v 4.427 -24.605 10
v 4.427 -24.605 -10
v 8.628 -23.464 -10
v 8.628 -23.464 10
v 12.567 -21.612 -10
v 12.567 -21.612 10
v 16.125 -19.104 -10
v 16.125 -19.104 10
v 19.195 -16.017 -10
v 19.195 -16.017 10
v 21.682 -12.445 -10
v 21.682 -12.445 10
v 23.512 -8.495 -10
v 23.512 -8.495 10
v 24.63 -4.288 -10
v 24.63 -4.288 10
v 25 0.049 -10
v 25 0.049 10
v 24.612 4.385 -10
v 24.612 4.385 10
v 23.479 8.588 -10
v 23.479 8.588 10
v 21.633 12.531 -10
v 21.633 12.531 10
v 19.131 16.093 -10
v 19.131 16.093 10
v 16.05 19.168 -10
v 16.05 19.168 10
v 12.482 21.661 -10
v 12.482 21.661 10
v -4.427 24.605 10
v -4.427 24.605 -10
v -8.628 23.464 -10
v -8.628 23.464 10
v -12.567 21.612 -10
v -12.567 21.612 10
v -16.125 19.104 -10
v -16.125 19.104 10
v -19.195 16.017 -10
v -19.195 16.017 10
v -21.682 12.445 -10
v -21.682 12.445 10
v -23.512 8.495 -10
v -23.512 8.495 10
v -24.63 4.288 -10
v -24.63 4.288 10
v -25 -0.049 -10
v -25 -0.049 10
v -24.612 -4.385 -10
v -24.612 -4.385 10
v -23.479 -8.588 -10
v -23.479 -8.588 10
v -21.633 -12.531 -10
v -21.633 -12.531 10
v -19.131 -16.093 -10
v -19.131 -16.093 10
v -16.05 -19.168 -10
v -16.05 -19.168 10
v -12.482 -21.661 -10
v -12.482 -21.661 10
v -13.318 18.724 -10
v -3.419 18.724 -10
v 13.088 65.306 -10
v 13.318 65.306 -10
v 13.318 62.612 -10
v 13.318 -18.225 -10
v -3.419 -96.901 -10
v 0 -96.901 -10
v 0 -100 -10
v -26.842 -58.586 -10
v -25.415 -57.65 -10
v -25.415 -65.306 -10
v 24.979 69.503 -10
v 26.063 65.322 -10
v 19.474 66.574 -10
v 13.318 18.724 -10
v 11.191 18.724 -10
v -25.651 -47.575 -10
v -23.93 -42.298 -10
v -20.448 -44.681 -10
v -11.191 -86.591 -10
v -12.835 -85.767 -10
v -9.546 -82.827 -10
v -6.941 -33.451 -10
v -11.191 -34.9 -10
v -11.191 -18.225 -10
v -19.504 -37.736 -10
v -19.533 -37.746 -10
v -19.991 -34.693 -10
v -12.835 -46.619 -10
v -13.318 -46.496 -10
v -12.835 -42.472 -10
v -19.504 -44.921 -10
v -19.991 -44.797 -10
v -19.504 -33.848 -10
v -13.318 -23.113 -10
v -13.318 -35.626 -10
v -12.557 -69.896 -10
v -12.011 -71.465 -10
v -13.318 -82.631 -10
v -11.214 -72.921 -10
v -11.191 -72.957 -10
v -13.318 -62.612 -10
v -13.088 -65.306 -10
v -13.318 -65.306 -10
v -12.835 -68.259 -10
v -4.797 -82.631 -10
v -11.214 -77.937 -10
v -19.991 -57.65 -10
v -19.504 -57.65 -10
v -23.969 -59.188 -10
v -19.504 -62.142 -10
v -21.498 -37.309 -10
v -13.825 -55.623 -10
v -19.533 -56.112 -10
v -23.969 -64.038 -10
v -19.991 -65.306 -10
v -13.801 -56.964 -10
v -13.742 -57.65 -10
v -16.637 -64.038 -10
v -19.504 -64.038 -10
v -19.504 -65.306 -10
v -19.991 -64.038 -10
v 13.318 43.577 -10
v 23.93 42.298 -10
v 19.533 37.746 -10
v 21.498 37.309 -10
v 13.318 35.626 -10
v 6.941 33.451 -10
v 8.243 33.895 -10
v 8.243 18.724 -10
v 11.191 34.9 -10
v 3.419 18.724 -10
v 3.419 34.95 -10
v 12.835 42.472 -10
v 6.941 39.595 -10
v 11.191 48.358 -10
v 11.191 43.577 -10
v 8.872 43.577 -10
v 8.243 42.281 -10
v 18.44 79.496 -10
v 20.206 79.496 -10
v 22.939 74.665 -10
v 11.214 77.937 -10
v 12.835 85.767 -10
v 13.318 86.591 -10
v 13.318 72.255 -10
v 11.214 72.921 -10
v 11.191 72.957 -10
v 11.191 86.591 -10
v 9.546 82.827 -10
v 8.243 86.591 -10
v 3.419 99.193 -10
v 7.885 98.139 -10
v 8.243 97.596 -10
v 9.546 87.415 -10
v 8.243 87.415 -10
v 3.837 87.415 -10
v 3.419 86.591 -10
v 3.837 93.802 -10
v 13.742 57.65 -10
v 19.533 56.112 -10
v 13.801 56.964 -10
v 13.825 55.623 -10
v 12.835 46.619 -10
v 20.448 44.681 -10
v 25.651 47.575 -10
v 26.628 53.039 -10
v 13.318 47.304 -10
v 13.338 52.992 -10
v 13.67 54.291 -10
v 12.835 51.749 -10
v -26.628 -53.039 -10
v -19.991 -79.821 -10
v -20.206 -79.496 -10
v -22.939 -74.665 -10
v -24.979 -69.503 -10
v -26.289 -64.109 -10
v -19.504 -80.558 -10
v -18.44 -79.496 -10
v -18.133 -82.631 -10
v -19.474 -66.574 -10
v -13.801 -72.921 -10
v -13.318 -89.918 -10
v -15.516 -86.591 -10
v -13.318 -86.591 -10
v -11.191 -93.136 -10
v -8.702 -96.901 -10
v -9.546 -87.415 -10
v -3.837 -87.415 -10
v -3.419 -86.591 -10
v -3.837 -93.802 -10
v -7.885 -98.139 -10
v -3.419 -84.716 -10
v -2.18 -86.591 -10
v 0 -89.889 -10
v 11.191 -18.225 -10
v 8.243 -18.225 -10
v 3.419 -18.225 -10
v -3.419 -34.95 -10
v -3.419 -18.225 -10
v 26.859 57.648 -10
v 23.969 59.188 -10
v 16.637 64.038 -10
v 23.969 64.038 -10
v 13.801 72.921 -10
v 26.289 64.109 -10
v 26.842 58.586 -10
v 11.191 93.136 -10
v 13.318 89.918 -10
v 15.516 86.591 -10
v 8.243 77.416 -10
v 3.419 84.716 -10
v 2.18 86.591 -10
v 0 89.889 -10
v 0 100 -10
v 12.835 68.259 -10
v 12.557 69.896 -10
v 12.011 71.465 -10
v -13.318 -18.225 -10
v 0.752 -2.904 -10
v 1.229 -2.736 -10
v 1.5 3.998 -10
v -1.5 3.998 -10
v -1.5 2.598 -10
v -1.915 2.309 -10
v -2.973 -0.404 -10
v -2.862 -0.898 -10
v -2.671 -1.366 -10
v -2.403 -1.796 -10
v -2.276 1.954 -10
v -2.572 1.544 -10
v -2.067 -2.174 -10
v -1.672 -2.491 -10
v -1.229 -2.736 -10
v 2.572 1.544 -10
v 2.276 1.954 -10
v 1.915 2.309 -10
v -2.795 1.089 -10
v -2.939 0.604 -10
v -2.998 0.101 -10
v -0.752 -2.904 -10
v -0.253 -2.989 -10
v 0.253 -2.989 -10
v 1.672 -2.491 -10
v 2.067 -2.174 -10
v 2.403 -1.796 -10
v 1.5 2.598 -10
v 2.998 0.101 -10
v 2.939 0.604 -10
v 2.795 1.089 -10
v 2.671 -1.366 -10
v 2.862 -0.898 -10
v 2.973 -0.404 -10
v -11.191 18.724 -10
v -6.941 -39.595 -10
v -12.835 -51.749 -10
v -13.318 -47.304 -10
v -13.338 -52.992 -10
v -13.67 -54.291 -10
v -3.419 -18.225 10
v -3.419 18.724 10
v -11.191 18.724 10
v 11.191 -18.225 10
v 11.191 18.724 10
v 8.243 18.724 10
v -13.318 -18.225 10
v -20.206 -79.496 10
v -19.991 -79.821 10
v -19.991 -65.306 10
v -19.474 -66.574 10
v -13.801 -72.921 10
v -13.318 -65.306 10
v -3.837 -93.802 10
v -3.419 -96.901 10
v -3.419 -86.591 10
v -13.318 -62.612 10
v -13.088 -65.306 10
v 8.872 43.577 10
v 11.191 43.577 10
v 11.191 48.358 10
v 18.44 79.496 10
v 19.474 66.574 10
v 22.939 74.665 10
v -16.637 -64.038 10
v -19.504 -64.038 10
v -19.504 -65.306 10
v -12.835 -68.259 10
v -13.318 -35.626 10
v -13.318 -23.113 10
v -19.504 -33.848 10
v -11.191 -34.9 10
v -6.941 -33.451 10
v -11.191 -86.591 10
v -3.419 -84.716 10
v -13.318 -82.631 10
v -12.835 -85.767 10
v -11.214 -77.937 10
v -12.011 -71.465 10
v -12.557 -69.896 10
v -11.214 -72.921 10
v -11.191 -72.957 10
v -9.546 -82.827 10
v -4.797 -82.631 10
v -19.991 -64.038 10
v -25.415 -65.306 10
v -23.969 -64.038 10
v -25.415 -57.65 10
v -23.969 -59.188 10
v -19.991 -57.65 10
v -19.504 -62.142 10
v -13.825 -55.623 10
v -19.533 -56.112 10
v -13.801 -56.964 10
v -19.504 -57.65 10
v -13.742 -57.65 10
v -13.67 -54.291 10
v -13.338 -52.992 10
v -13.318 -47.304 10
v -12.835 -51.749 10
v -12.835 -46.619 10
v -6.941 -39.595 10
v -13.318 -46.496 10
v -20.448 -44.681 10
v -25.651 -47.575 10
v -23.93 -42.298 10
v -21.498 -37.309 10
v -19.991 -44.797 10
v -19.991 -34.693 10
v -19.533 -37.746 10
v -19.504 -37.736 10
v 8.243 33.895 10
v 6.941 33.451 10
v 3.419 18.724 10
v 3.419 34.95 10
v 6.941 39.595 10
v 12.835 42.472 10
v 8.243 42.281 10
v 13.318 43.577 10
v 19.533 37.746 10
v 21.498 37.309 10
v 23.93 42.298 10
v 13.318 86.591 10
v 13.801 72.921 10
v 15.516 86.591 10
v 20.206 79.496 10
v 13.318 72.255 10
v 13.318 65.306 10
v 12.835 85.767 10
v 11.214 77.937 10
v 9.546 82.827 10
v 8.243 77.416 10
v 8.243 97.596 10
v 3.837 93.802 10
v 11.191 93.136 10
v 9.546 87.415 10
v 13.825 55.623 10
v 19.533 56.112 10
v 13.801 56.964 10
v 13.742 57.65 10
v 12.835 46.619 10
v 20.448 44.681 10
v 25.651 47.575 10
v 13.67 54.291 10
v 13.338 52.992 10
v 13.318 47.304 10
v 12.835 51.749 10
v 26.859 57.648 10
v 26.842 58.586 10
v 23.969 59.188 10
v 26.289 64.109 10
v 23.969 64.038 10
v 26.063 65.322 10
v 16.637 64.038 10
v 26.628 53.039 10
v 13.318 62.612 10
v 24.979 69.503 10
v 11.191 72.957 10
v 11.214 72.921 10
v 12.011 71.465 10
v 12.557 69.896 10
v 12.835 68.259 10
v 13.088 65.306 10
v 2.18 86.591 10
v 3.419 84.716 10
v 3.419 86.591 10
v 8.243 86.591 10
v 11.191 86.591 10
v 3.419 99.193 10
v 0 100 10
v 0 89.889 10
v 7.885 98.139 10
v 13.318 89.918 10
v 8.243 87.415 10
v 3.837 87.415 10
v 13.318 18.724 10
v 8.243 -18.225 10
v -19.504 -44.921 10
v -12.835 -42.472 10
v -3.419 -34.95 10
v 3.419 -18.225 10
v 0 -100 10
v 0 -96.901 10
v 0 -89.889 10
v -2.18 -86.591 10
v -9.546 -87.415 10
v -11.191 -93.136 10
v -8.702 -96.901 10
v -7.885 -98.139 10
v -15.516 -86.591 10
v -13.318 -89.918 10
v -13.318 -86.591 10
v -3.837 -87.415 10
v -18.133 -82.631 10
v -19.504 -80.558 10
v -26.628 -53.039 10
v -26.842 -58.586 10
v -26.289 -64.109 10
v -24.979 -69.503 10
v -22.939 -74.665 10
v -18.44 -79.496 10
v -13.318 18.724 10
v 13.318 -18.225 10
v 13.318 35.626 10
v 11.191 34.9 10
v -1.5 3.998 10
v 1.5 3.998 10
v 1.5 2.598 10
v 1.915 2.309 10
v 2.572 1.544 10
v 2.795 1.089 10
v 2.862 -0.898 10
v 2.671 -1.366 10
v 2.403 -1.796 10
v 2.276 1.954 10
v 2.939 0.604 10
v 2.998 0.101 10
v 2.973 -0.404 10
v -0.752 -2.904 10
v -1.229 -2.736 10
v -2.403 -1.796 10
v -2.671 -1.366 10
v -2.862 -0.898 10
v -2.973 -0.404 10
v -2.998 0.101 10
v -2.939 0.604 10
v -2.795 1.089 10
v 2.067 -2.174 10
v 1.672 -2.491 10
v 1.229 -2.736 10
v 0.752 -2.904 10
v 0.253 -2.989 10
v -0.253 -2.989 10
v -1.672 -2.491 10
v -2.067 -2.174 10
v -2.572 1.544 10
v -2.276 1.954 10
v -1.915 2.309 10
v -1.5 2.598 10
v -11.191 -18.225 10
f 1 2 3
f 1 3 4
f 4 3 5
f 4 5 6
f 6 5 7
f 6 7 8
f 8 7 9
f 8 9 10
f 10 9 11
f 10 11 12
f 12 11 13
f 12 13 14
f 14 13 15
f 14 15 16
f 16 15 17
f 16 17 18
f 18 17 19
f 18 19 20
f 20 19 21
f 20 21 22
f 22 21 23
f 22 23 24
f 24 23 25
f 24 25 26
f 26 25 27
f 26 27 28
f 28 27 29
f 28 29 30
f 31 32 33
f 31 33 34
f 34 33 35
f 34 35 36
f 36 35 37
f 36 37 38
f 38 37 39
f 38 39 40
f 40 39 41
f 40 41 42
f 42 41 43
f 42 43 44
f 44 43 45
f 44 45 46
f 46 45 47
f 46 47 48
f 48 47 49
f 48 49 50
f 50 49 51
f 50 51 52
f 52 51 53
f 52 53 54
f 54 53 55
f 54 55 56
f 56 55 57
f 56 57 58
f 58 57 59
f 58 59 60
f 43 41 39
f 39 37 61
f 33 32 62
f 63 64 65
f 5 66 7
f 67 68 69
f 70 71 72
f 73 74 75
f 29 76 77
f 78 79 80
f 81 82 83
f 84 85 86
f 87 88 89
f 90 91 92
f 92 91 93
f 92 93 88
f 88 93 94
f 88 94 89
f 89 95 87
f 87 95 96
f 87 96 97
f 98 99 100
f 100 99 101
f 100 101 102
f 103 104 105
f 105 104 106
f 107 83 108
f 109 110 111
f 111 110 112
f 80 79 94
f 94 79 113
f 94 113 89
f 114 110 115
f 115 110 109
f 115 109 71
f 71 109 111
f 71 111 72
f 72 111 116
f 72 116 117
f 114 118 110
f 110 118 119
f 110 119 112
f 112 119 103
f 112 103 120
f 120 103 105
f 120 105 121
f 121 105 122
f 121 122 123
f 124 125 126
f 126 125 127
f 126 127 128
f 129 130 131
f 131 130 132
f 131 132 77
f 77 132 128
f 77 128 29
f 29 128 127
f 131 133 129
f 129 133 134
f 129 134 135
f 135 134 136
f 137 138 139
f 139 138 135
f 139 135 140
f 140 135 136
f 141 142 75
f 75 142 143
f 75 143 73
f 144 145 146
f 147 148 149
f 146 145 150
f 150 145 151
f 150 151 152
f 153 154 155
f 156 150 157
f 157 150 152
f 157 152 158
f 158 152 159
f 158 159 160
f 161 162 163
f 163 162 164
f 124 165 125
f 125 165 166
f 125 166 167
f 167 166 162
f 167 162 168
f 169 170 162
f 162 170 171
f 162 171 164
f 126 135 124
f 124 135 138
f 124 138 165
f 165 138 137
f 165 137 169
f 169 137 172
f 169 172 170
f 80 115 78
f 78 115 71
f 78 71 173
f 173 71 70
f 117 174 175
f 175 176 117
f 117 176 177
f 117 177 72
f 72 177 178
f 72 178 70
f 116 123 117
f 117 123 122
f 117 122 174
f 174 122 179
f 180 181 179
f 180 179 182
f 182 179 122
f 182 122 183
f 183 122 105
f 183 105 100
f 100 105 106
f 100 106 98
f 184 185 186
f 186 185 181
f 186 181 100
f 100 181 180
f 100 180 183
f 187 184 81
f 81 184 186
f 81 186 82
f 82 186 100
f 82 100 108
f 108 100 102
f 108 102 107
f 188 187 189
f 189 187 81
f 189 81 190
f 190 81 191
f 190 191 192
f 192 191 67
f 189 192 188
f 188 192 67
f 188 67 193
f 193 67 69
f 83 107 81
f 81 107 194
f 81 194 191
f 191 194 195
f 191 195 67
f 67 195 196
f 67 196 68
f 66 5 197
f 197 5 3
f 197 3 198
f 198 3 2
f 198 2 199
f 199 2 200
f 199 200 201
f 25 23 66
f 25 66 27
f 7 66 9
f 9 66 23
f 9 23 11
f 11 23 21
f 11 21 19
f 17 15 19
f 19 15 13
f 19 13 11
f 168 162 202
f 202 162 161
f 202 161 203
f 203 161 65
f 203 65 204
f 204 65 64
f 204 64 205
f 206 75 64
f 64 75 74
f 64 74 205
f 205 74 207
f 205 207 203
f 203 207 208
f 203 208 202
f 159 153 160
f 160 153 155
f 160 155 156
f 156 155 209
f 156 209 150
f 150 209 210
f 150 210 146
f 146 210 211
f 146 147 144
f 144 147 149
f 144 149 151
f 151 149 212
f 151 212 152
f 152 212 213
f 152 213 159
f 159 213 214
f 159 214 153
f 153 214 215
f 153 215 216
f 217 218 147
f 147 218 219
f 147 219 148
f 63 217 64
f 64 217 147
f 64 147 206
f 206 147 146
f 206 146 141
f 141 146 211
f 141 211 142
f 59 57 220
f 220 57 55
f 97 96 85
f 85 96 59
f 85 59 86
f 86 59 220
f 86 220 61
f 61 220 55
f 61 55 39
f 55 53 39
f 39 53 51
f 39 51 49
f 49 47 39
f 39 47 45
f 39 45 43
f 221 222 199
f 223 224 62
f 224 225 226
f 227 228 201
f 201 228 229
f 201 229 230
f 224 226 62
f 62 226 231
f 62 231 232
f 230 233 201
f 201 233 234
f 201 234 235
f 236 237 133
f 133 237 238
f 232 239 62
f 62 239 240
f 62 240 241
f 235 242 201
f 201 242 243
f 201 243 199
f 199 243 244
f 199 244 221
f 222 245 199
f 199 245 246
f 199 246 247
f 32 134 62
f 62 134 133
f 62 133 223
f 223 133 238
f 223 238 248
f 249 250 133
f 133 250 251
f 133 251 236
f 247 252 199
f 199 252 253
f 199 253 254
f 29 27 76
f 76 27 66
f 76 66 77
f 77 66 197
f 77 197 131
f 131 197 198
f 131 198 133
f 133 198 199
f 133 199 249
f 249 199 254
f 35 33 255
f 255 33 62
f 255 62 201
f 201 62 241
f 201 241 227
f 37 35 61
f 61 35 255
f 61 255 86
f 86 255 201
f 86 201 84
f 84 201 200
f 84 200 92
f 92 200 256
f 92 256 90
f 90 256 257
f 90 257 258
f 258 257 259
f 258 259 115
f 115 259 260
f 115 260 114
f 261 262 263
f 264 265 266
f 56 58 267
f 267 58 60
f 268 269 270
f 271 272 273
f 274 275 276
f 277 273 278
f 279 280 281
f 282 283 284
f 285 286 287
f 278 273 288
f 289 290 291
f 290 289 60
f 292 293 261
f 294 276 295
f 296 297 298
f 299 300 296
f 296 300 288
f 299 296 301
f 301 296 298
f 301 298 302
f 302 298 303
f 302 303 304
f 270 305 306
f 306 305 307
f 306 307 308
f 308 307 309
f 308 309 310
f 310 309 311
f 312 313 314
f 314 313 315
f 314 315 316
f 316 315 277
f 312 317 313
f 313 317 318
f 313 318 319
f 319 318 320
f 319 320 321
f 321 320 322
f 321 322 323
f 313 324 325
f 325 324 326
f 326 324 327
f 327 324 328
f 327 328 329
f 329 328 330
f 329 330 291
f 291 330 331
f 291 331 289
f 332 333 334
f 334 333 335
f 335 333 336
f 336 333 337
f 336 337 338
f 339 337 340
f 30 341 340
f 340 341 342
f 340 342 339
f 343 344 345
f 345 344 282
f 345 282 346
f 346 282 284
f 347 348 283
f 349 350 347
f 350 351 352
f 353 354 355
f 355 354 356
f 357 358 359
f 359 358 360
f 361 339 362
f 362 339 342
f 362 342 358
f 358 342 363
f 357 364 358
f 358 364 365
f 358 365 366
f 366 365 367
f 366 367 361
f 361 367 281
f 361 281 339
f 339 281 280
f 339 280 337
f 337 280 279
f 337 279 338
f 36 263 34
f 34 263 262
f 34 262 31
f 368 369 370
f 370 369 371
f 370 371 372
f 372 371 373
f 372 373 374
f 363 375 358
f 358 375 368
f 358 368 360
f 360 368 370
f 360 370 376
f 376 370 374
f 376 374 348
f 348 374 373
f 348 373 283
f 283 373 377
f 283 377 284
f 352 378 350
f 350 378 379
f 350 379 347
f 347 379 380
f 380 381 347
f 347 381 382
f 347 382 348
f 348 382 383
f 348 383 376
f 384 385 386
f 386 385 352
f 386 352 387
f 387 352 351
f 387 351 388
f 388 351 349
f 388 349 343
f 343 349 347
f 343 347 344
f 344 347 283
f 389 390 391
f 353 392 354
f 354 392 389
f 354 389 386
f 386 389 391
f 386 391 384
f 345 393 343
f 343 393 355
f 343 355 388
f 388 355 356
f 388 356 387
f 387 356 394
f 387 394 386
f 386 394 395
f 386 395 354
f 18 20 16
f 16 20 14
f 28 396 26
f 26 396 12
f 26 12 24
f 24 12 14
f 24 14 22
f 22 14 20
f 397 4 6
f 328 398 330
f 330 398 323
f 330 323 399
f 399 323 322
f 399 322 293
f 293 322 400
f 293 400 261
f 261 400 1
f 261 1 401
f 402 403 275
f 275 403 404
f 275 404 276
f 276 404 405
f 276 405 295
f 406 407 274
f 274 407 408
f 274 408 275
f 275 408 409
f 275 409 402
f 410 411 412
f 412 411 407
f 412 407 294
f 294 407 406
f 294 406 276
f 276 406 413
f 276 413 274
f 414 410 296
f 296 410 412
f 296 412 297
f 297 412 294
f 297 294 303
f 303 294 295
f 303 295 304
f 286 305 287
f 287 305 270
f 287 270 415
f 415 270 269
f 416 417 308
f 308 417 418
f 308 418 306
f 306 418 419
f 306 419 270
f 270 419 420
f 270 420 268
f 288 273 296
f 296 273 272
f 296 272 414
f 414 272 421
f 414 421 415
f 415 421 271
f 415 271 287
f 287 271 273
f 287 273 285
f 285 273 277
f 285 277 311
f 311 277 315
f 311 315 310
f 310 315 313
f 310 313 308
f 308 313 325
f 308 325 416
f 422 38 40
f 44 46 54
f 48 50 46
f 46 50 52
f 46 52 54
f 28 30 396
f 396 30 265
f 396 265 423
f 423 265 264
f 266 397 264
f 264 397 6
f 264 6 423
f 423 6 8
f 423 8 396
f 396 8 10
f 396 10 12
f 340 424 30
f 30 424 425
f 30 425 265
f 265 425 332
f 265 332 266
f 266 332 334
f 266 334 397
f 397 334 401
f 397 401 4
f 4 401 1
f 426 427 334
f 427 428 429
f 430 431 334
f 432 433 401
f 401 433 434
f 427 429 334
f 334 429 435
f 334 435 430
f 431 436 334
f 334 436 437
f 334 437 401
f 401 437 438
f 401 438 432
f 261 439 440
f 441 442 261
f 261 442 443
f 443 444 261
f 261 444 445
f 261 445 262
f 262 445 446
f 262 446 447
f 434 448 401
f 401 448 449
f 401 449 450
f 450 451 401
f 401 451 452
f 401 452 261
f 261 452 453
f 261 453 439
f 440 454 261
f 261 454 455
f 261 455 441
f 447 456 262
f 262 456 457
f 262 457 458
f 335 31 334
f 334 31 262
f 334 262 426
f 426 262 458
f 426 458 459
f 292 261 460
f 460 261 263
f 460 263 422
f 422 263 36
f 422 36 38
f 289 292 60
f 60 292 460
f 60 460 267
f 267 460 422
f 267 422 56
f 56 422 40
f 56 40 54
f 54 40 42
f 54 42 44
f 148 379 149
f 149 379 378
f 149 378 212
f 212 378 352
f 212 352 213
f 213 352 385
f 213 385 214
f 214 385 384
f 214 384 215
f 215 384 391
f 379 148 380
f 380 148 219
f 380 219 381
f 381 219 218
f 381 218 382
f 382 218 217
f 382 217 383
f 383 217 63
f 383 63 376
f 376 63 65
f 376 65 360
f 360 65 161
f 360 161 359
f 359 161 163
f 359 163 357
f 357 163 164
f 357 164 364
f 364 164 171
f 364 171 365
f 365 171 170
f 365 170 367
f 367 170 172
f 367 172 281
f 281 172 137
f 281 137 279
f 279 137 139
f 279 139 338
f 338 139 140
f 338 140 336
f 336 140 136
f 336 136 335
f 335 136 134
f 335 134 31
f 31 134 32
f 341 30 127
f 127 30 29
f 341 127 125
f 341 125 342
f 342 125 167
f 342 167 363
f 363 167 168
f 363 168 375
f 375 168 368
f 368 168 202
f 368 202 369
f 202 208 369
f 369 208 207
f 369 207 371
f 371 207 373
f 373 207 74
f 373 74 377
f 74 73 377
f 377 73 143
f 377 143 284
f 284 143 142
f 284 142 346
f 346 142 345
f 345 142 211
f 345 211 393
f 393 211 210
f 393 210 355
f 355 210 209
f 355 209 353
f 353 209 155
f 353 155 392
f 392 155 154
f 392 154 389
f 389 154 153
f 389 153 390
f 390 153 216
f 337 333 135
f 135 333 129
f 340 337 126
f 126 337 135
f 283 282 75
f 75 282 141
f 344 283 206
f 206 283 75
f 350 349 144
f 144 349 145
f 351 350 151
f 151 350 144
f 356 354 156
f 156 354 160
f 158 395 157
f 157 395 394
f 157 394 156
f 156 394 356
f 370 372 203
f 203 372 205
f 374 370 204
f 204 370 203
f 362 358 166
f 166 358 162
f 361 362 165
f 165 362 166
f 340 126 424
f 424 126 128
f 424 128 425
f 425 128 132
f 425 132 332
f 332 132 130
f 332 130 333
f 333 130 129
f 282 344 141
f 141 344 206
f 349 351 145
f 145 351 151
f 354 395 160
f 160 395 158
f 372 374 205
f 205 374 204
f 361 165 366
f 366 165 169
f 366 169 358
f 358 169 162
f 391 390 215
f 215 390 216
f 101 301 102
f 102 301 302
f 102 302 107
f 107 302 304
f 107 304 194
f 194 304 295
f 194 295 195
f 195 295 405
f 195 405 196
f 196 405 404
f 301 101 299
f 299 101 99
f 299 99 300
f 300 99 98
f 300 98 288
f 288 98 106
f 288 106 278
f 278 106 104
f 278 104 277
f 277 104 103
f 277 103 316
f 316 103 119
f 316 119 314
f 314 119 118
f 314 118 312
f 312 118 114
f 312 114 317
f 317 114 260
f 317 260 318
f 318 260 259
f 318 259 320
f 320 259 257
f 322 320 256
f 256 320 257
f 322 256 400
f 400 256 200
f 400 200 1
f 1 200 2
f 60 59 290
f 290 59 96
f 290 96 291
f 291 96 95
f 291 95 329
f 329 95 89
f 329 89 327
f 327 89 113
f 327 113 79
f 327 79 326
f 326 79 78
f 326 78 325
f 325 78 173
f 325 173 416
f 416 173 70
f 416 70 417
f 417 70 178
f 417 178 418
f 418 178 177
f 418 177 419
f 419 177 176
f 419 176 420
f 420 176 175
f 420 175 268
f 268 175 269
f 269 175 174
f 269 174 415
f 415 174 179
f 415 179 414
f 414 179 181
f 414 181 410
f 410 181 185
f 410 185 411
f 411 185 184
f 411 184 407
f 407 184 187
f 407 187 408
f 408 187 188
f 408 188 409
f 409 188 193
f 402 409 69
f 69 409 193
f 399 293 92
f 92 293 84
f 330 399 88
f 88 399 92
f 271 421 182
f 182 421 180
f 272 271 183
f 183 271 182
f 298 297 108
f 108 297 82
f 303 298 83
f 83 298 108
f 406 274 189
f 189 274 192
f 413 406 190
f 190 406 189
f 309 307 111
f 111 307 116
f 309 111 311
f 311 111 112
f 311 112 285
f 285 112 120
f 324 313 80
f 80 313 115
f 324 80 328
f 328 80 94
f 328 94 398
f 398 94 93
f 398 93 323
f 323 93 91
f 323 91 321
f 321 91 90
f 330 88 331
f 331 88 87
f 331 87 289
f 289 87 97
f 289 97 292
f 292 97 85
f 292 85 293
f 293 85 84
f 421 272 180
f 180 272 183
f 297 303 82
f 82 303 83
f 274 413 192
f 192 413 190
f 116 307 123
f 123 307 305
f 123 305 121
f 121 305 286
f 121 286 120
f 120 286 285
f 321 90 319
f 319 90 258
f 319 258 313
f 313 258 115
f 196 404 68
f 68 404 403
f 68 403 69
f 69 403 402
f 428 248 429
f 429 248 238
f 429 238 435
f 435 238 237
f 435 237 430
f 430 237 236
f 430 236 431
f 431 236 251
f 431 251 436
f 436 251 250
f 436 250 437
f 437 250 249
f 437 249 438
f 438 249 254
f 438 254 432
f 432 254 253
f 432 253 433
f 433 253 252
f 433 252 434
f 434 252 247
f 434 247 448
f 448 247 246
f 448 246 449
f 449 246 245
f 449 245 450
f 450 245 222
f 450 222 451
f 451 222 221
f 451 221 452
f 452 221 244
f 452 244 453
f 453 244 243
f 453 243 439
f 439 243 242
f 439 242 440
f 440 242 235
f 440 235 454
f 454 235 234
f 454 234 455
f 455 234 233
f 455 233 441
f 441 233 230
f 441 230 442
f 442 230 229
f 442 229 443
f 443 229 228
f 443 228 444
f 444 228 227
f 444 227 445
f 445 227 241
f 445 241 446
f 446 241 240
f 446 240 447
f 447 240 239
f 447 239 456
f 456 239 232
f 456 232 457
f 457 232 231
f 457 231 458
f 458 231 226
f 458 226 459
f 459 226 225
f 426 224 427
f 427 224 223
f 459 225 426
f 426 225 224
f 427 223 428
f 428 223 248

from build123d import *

# Parameters (mm, degrees)
BOSS_EXTRUDE2_DEPTH = 10
BOSS_EXTRUDE3_DEPTH = 10
SKETCH4_R           = 3
CUT_EXTRUDE2_DEPTH  = 97.50000000000003
SKETCH5_W           = 2.9999999999999996
SKETCH5_H           = 5.436144239166649
CUT_EXTRUDE3_DEPTH  = 97.50000000000003


with BuildPart() as part:
    # Sketch1 → Boss-Extrude2 (new, symmetric)
    with BuildSketch(Plane.XY):
        with BuildLine():
            ThreePointArc((25, 0), (21.645300725418316, 12.509234848950804), (12.48152347950358, 21.661292012033837))
            ThreePointArc((12.48152347950358, 21.661292012033837), (4.28784793672588, 24.62954242513481), (-4.426865135345868, 24.604935786818448))
            ThreePointArc((-4.426865135345868, 24.604935786818448), (-24.629542425134808, 4.287847936725893), (-12.481523479503583, -21.661292012033833))
            ThreePointArc((-12.481523479503583, -21.661292012033833), (-4.287847936725894, -24.629542425134808), (4.426865135345872, -24.604935786818448))
            ThreePointArc((4.426865135345872, -24.604935786818448), (19.17904622737594, -16.036339538940197), (25, -6.12e-15))
        make_face()
    extrude(amount=BOSS_EXTRUDE2_DEPTH, both=True)

    # Sketch1<3> → Boss-Extrude3 (add, symmetric)
    # profile 1 of 2: a face of its own
    with BuildSketch(Plane.XY):
        with BuildLine():
            Line((7.884503622185871, 98.13875635188714), (0, 100))
            Line((0, 100), (0, 89.88888944193812))
            Line((0, 89.88888944193812), (11.213955839011007, 72.92107946844857))
            ThreePointArc((11.213955839011007, 72.92107946844857), (12.316550372656614, 70.69184504913264), (12.834937174754405, 68.25946433771043))
            Line((12.834937174754403, 68.25946433771043), (13.800806715779299, 56.96435029183125))
            ThreePointArc((13.800806715779299, 56.96435029183125), (13.669977908403055, 54.29138507792813), (12.834937174754405, 51.74883396050234))
            Line((12.834937174754405, 51.74883396050234), (6.9408608007812065, 39.59494800864677))
            Line((6.9408608007812065, 39.59494800864677), (-4.426865135345866, 24.604935786818455))
            ThreePointArc((-4.426865135345868, 24.604935786818448), (4.28784793672588, 24.62954242513481), (12.48152347950358, 21.661292012033837))
            Line((12.48152347950358, 21.661292012033837), (21.497992967547173, 37.3090916431309))
            ThreePointArc((21.497992967547184, 37.30909164313089), (26.841650784941862, 58.58591551416716), (20.205597304410567, 79.49573873465448))
            Line((20.20559730441056, 79.49573873465448), (7.884503622185871, 98.13875635188714))
        make_face()
        Polygon((19.53338673071413, 37.74573428428377), (6.9408608007812065, 33.45058119297329), (12.834937174754405, 42.47223772885839), align=None, mode=Mode.SUBTRACT)
        Polygon((3.837169059910087, 87.41506901436794), (3.837169059910087, 93.80229693129422), (9.546066599836061, 87.41506901436794), align=None, mode=Mode.SUBTRACT)
        Polygon((9.546066599836061, 82.82716309982816), (12.834937174754405, 85.76675213258054), (11.213955839011007, 77.93724694409028), align=None, mode=Mode.SUBTRACT)
        Polygon((20.448297379263852, 44.6809874579877), (12.834937174754405, 46.619226190129275), (19.53338673071413, 56.11233816601091), align=None, mode=Mode.SUBTRACT)
        Polygon((13.800806715779299, 72.92107946844857), (18.439962300817417, 79.49573873465448), (19.474189611668198, 66.57358604040863), align=None, mode=Mode.SUBTRACT)
        Polygon((23.968839315475996, 59.18764241375836), (16.637498163723752, 64.03815423191097), (23.968839315475996, 64.03815423191097), align=None, mode=Mode.SUBTRACT)
    # profile 2 of 2: a face of its own
    with BuildSketch(Plane.XY):
        with BuildLine():
            Line((-6.9408608007812065, -39.59494800864677), (4.426865135345866, -24.604935786818455))
            ThreePointArc((4.426865135345872, -24.604935786818448), (-4.287847936725894, -24.629542425134808), (-12.481523479503583, -21.661292012033833))
            Line((-12.48152347950358, -21.661292012033837), (-21.497992967547173, -37.3090916431309))
            ThreePointArc((-21.49799296754719, -37.3090916431309), (-26.841650784941862, -58.58591551416717), (-20.205597304410567, -79.49573873465448))
            Line((-20.20559730441056, -79.49573873465448), (-7.884503622185871, -98.13875635188714))
            Line((-7.884503622185871, -98.13875635188714), (0, -100))
            Line((0, -100), (0, -89.88888944193812))
            Line((0, -89.88888944193812), (-11.213955839011007, -72.92107946844857))
            ThreePointArc((-11.213955839011007, -72.92107946844857), (-12.316550372656614, -70.69184504913264), (-12.834937174754405, -68.25946433771043))
            Line((-12.834937174754403, -68.25946433771043), (-13.800806715779299, -56.96435029183125))
            ThreePointArc((-13.800806715779299, -56.96435029183125), (-13.669977908403055, -54.29138507792813), (-12.834937174754405, -51.74883396050234))
            Line((-12.834937174754405, -51.74883396050234), (-6.9408608007812065, -39.59494800864677))
        make_face()
        Polygon((-23.968839315475996, -59.18764241375836), (-16.637498163723752, -64.03815423191097), (-23.968839315475996, -64.03815423191097), align=None, mode=Mode.SUBTRACT)
        Polygon((-13.800806715779299, -72.92107946844857), (-18.439962300817417, -79.49573873465448), (-19.474189611668198, -66.57358604040863), align=None, mode=Mode.SUBTRACT)
        Polygon((-20.448297379263852, -44.6809874579877), (-12.834937174754405, -46.619226190129275), (-19.53338673071413, -56.11233816601091), align=None, mode=Mode.SUBTRACT)
        Polygon((-9.546066599836061, -82.82716309982816), (-12.834937174754405, -85.76675213258054), (-11.213955839011007, -77.93724694409028), align=None, mode=Mode.SUBTRACT)
        Polygon((-3.837169059910087, -87.41506901436794), (-3.837169059910087, -93.80229693129422), (-9.546066599836061, -87.41506901436794), align=None, mode=Mode.SUBTRACT)
        Polygon((-19.53338673071413, -37.74573428428377), (-6.9408608007812065, -33.45058119297329), (-12.834937174754405, -42.47223772885839), align=None, mode=Mode.SUBTRACT)
    extrude(amount=BOSS_EXTRUDE3_DEPTH, both=True)

    # Sketch4 → Cut-Extrude2 (cut, symmetric)
    with BuildSketch(Plane(origin=(0, 0, -10), x_dir=(-1, 0, 0), z_dir=(0, 0, -1))):
        Circle(SKETCH4_R)
    extrude(amount=CUT_EXTRUDE2_DEPTH, both=True, mode=Mode.SUBTRACT)

    # Sketch5 → Cut-Extrude3 (cut, symmetric)
    with BuildSketch(Plane(origin=(0, 0, -10), x_dir=(-1, 0, 0), z_dir=(0, 0, -1))):
        with Locations((-2.2e-16, 1.2801544176002273)):
            Rectangle(SKETCH5_W, SKETCH5_H)
    extrude(amount=CUT_EXTRUDE3_DEPTH, both=True, mode=Mode.SUBTRACT)


solid = part.part
